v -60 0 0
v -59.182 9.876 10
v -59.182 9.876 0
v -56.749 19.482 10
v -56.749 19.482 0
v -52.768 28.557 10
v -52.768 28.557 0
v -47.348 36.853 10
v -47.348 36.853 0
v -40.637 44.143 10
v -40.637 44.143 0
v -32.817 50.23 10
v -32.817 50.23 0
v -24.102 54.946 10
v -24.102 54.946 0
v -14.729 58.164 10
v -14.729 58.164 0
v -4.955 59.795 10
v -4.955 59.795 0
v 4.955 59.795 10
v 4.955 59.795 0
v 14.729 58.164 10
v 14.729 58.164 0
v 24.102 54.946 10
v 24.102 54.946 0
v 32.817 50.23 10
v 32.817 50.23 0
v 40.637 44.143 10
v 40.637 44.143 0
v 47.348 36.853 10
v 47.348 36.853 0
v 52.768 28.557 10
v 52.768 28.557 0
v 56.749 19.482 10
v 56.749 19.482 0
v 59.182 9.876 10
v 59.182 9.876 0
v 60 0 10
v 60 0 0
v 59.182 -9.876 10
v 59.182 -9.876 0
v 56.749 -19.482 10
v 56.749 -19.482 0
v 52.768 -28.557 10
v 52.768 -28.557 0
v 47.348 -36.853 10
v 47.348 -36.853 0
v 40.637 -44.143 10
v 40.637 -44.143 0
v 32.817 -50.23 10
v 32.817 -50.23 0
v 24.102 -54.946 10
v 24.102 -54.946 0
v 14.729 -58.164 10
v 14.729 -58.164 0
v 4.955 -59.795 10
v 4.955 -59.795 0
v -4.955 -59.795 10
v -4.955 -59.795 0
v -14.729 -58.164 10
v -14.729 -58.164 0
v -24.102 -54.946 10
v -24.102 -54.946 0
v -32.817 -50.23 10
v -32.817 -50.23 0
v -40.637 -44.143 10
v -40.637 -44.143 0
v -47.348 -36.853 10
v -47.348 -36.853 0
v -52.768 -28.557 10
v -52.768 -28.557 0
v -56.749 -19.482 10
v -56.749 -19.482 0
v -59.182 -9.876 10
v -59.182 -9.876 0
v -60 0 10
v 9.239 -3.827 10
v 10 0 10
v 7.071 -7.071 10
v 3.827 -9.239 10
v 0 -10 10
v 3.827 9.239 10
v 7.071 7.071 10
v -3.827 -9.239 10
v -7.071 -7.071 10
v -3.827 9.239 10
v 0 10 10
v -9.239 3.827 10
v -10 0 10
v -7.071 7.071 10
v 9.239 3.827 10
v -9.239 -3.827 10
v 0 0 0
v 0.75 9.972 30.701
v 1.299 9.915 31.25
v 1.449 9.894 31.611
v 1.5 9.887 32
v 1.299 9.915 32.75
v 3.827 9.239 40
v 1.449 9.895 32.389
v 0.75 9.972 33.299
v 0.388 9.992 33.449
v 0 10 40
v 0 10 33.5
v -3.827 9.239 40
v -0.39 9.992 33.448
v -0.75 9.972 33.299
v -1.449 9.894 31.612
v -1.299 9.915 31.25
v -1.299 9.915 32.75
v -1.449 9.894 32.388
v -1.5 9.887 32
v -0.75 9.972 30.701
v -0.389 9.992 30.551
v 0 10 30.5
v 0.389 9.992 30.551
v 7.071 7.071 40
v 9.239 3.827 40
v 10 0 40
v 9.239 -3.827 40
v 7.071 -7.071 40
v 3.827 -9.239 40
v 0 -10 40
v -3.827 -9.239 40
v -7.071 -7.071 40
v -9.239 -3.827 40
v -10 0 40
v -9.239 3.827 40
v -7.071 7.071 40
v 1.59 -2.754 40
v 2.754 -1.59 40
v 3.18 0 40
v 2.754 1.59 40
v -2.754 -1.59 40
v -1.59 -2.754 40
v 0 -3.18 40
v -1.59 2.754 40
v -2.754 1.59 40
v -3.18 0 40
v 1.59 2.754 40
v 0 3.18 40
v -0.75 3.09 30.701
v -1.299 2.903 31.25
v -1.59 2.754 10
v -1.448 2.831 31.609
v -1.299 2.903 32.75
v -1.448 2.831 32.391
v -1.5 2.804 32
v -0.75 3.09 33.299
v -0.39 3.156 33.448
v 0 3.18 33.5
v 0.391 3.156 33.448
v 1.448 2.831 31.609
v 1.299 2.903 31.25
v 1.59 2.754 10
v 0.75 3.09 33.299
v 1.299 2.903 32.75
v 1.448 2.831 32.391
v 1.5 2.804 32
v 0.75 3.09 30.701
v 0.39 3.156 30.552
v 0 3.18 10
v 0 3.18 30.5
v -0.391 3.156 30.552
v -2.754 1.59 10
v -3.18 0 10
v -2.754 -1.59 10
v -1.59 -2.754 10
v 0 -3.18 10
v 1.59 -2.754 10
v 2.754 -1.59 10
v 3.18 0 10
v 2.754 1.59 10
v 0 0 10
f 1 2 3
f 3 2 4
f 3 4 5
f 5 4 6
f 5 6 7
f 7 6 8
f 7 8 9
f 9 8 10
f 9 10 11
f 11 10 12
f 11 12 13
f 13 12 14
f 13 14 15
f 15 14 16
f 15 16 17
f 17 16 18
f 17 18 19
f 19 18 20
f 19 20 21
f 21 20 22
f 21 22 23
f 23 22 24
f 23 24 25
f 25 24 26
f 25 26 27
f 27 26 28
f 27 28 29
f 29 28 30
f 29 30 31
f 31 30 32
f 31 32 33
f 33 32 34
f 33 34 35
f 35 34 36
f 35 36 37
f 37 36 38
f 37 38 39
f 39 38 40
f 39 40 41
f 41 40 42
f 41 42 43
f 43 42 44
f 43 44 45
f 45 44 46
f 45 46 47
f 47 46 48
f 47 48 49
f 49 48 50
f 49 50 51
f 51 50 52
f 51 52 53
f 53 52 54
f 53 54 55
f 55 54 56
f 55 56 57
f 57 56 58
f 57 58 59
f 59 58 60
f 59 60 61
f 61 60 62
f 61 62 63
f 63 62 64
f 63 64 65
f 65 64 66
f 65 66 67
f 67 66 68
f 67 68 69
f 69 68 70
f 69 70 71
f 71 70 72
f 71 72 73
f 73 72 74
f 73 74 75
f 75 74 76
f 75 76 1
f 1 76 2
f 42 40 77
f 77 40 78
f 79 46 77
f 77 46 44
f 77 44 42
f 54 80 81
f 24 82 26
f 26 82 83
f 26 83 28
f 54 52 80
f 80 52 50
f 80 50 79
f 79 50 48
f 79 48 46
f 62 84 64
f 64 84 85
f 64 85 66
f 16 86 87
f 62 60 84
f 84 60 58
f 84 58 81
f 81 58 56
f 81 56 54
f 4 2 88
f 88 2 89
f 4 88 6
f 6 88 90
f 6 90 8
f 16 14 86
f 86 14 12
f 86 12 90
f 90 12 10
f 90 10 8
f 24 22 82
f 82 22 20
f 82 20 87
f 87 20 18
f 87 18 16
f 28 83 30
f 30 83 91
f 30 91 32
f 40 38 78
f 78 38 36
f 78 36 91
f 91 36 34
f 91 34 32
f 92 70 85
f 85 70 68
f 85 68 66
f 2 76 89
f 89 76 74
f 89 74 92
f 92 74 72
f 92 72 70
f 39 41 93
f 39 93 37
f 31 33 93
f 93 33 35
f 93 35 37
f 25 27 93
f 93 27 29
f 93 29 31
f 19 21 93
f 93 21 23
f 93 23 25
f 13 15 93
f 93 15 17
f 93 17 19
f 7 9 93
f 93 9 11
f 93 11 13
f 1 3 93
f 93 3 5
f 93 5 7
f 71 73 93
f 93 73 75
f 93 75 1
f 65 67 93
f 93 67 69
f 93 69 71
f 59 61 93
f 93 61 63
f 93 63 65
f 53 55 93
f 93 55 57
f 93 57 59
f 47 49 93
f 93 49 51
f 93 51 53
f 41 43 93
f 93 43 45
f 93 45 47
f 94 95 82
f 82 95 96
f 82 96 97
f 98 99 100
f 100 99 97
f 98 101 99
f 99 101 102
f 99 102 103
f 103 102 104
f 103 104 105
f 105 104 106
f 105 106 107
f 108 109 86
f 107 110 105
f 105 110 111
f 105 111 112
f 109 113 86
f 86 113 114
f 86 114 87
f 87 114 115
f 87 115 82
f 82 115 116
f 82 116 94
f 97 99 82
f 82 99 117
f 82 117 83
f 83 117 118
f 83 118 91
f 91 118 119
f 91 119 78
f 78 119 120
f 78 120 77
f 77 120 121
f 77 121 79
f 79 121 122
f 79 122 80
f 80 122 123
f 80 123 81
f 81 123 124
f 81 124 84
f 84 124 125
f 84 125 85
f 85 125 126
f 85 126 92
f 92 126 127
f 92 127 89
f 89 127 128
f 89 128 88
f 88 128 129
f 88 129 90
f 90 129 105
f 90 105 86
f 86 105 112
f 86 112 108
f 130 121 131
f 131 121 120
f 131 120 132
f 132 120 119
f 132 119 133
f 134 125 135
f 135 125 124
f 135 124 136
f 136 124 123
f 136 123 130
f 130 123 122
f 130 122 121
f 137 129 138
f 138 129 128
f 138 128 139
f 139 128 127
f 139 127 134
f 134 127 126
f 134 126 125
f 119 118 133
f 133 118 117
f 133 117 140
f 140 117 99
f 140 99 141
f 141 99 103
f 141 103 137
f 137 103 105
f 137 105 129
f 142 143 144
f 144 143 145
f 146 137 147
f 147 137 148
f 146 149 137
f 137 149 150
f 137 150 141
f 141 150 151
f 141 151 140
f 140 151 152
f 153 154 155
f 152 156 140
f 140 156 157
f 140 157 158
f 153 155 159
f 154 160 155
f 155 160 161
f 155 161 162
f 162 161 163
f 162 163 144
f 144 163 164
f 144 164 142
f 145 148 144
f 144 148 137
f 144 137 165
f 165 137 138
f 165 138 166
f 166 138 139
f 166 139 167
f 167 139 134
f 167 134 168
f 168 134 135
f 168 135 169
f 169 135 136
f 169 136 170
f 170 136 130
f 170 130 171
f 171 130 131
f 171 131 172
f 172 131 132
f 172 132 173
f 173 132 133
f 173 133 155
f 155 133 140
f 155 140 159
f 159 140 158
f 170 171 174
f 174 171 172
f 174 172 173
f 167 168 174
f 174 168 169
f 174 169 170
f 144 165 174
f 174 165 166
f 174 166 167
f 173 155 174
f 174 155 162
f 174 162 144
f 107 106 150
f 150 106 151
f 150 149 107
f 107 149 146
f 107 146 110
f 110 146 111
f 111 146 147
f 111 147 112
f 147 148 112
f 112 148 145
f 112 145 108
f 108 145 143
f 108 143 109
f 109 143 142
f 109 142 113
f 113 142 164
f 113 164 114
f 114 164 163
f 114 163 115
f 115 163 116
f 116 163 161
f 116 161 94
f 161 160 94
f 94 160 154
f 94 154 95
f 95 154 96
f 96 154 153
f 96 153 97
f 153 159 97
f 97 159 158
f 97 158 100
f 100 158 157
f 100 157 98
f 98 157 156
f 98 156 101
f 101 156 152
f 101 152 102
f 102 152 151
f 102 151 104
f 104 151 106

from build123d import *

# Parameters (mm, degrees)
SKETCH1_R               = 60
BOSS_EXTRUDE1_DEPTH     = 10
SKETCH2_R               = 10
BOSS_EXTRUDE2_DEPTH     = 30
SKETCH3_R               = 3.18
CUT_EXTRUDE1_DEPTH      = 30
CUT_EXTRUDE2_REACH      = 106.043
CUT_EXTRUDE2_END_RADIUS = 3.18
SKETCH4_R               = 1.5


with BuildPart() as part:
    # Sketch1 → Boss-Extrude1 (new body)
    with BuildSketch(Plane.XY):
        Circle(SKETCH1_R)
    extrude(amount=BOSS_EXTRUDE1_DEPTH)

    # Sketch2 → Boss-Extrude2 (add)
    with BuildSketch(Plane.XY.offset(10)):
        Circle(SKETCH2_R)
    extrude(amount=BOSS_EXTRUDE2_DEPTH)

    # Sketch3 → Cut-Extrude1 (cut)
    with BuildSketch(Plane.XY.offset(40)):
        Circle(SKETCH3_R)
    extrude(amount=-CUT_EXTRUDE1_DEPTH, mode=Mode.SUBTRACT)

    # Cut-Extrude2: up to this cylinder (the profile starts outside it)
    cut_extrude2_end = Plane(origin=(0, 0, 32), z_dir=(0, 0, 1)) * Cylinder(CUT_EXTRUDE2_END_RADIUS, 219.446, mode=Mode.PRIVATE)
    # Sketch4 → Cut-Extrude2 (cut, up to the surface)
    with BuildSketch(Plane(origin=(0, 15, 0), x_dir=(1, 0, 0), z_dir=(0, 1, 0)), mode=Mode.PRIVATE) as cut_extrude2_sk1:
        with Locations(Location((0, -32, 0), (0, 0, 270))):
            Circle(SKETCH4_R)
    cut_extrude2_tool1 = extrude(cut_extrude2_sk1.sketch, amount=-CUT_EXTRUDE2_REACH, mode=Mode.PRIVATE) - cut_extrude2_end
    add(cut_extrude2_tool1.solids().sort_by_distance((0, 15, 32))[0], mode=Mode.SUBTRACT)


solid = part.part
